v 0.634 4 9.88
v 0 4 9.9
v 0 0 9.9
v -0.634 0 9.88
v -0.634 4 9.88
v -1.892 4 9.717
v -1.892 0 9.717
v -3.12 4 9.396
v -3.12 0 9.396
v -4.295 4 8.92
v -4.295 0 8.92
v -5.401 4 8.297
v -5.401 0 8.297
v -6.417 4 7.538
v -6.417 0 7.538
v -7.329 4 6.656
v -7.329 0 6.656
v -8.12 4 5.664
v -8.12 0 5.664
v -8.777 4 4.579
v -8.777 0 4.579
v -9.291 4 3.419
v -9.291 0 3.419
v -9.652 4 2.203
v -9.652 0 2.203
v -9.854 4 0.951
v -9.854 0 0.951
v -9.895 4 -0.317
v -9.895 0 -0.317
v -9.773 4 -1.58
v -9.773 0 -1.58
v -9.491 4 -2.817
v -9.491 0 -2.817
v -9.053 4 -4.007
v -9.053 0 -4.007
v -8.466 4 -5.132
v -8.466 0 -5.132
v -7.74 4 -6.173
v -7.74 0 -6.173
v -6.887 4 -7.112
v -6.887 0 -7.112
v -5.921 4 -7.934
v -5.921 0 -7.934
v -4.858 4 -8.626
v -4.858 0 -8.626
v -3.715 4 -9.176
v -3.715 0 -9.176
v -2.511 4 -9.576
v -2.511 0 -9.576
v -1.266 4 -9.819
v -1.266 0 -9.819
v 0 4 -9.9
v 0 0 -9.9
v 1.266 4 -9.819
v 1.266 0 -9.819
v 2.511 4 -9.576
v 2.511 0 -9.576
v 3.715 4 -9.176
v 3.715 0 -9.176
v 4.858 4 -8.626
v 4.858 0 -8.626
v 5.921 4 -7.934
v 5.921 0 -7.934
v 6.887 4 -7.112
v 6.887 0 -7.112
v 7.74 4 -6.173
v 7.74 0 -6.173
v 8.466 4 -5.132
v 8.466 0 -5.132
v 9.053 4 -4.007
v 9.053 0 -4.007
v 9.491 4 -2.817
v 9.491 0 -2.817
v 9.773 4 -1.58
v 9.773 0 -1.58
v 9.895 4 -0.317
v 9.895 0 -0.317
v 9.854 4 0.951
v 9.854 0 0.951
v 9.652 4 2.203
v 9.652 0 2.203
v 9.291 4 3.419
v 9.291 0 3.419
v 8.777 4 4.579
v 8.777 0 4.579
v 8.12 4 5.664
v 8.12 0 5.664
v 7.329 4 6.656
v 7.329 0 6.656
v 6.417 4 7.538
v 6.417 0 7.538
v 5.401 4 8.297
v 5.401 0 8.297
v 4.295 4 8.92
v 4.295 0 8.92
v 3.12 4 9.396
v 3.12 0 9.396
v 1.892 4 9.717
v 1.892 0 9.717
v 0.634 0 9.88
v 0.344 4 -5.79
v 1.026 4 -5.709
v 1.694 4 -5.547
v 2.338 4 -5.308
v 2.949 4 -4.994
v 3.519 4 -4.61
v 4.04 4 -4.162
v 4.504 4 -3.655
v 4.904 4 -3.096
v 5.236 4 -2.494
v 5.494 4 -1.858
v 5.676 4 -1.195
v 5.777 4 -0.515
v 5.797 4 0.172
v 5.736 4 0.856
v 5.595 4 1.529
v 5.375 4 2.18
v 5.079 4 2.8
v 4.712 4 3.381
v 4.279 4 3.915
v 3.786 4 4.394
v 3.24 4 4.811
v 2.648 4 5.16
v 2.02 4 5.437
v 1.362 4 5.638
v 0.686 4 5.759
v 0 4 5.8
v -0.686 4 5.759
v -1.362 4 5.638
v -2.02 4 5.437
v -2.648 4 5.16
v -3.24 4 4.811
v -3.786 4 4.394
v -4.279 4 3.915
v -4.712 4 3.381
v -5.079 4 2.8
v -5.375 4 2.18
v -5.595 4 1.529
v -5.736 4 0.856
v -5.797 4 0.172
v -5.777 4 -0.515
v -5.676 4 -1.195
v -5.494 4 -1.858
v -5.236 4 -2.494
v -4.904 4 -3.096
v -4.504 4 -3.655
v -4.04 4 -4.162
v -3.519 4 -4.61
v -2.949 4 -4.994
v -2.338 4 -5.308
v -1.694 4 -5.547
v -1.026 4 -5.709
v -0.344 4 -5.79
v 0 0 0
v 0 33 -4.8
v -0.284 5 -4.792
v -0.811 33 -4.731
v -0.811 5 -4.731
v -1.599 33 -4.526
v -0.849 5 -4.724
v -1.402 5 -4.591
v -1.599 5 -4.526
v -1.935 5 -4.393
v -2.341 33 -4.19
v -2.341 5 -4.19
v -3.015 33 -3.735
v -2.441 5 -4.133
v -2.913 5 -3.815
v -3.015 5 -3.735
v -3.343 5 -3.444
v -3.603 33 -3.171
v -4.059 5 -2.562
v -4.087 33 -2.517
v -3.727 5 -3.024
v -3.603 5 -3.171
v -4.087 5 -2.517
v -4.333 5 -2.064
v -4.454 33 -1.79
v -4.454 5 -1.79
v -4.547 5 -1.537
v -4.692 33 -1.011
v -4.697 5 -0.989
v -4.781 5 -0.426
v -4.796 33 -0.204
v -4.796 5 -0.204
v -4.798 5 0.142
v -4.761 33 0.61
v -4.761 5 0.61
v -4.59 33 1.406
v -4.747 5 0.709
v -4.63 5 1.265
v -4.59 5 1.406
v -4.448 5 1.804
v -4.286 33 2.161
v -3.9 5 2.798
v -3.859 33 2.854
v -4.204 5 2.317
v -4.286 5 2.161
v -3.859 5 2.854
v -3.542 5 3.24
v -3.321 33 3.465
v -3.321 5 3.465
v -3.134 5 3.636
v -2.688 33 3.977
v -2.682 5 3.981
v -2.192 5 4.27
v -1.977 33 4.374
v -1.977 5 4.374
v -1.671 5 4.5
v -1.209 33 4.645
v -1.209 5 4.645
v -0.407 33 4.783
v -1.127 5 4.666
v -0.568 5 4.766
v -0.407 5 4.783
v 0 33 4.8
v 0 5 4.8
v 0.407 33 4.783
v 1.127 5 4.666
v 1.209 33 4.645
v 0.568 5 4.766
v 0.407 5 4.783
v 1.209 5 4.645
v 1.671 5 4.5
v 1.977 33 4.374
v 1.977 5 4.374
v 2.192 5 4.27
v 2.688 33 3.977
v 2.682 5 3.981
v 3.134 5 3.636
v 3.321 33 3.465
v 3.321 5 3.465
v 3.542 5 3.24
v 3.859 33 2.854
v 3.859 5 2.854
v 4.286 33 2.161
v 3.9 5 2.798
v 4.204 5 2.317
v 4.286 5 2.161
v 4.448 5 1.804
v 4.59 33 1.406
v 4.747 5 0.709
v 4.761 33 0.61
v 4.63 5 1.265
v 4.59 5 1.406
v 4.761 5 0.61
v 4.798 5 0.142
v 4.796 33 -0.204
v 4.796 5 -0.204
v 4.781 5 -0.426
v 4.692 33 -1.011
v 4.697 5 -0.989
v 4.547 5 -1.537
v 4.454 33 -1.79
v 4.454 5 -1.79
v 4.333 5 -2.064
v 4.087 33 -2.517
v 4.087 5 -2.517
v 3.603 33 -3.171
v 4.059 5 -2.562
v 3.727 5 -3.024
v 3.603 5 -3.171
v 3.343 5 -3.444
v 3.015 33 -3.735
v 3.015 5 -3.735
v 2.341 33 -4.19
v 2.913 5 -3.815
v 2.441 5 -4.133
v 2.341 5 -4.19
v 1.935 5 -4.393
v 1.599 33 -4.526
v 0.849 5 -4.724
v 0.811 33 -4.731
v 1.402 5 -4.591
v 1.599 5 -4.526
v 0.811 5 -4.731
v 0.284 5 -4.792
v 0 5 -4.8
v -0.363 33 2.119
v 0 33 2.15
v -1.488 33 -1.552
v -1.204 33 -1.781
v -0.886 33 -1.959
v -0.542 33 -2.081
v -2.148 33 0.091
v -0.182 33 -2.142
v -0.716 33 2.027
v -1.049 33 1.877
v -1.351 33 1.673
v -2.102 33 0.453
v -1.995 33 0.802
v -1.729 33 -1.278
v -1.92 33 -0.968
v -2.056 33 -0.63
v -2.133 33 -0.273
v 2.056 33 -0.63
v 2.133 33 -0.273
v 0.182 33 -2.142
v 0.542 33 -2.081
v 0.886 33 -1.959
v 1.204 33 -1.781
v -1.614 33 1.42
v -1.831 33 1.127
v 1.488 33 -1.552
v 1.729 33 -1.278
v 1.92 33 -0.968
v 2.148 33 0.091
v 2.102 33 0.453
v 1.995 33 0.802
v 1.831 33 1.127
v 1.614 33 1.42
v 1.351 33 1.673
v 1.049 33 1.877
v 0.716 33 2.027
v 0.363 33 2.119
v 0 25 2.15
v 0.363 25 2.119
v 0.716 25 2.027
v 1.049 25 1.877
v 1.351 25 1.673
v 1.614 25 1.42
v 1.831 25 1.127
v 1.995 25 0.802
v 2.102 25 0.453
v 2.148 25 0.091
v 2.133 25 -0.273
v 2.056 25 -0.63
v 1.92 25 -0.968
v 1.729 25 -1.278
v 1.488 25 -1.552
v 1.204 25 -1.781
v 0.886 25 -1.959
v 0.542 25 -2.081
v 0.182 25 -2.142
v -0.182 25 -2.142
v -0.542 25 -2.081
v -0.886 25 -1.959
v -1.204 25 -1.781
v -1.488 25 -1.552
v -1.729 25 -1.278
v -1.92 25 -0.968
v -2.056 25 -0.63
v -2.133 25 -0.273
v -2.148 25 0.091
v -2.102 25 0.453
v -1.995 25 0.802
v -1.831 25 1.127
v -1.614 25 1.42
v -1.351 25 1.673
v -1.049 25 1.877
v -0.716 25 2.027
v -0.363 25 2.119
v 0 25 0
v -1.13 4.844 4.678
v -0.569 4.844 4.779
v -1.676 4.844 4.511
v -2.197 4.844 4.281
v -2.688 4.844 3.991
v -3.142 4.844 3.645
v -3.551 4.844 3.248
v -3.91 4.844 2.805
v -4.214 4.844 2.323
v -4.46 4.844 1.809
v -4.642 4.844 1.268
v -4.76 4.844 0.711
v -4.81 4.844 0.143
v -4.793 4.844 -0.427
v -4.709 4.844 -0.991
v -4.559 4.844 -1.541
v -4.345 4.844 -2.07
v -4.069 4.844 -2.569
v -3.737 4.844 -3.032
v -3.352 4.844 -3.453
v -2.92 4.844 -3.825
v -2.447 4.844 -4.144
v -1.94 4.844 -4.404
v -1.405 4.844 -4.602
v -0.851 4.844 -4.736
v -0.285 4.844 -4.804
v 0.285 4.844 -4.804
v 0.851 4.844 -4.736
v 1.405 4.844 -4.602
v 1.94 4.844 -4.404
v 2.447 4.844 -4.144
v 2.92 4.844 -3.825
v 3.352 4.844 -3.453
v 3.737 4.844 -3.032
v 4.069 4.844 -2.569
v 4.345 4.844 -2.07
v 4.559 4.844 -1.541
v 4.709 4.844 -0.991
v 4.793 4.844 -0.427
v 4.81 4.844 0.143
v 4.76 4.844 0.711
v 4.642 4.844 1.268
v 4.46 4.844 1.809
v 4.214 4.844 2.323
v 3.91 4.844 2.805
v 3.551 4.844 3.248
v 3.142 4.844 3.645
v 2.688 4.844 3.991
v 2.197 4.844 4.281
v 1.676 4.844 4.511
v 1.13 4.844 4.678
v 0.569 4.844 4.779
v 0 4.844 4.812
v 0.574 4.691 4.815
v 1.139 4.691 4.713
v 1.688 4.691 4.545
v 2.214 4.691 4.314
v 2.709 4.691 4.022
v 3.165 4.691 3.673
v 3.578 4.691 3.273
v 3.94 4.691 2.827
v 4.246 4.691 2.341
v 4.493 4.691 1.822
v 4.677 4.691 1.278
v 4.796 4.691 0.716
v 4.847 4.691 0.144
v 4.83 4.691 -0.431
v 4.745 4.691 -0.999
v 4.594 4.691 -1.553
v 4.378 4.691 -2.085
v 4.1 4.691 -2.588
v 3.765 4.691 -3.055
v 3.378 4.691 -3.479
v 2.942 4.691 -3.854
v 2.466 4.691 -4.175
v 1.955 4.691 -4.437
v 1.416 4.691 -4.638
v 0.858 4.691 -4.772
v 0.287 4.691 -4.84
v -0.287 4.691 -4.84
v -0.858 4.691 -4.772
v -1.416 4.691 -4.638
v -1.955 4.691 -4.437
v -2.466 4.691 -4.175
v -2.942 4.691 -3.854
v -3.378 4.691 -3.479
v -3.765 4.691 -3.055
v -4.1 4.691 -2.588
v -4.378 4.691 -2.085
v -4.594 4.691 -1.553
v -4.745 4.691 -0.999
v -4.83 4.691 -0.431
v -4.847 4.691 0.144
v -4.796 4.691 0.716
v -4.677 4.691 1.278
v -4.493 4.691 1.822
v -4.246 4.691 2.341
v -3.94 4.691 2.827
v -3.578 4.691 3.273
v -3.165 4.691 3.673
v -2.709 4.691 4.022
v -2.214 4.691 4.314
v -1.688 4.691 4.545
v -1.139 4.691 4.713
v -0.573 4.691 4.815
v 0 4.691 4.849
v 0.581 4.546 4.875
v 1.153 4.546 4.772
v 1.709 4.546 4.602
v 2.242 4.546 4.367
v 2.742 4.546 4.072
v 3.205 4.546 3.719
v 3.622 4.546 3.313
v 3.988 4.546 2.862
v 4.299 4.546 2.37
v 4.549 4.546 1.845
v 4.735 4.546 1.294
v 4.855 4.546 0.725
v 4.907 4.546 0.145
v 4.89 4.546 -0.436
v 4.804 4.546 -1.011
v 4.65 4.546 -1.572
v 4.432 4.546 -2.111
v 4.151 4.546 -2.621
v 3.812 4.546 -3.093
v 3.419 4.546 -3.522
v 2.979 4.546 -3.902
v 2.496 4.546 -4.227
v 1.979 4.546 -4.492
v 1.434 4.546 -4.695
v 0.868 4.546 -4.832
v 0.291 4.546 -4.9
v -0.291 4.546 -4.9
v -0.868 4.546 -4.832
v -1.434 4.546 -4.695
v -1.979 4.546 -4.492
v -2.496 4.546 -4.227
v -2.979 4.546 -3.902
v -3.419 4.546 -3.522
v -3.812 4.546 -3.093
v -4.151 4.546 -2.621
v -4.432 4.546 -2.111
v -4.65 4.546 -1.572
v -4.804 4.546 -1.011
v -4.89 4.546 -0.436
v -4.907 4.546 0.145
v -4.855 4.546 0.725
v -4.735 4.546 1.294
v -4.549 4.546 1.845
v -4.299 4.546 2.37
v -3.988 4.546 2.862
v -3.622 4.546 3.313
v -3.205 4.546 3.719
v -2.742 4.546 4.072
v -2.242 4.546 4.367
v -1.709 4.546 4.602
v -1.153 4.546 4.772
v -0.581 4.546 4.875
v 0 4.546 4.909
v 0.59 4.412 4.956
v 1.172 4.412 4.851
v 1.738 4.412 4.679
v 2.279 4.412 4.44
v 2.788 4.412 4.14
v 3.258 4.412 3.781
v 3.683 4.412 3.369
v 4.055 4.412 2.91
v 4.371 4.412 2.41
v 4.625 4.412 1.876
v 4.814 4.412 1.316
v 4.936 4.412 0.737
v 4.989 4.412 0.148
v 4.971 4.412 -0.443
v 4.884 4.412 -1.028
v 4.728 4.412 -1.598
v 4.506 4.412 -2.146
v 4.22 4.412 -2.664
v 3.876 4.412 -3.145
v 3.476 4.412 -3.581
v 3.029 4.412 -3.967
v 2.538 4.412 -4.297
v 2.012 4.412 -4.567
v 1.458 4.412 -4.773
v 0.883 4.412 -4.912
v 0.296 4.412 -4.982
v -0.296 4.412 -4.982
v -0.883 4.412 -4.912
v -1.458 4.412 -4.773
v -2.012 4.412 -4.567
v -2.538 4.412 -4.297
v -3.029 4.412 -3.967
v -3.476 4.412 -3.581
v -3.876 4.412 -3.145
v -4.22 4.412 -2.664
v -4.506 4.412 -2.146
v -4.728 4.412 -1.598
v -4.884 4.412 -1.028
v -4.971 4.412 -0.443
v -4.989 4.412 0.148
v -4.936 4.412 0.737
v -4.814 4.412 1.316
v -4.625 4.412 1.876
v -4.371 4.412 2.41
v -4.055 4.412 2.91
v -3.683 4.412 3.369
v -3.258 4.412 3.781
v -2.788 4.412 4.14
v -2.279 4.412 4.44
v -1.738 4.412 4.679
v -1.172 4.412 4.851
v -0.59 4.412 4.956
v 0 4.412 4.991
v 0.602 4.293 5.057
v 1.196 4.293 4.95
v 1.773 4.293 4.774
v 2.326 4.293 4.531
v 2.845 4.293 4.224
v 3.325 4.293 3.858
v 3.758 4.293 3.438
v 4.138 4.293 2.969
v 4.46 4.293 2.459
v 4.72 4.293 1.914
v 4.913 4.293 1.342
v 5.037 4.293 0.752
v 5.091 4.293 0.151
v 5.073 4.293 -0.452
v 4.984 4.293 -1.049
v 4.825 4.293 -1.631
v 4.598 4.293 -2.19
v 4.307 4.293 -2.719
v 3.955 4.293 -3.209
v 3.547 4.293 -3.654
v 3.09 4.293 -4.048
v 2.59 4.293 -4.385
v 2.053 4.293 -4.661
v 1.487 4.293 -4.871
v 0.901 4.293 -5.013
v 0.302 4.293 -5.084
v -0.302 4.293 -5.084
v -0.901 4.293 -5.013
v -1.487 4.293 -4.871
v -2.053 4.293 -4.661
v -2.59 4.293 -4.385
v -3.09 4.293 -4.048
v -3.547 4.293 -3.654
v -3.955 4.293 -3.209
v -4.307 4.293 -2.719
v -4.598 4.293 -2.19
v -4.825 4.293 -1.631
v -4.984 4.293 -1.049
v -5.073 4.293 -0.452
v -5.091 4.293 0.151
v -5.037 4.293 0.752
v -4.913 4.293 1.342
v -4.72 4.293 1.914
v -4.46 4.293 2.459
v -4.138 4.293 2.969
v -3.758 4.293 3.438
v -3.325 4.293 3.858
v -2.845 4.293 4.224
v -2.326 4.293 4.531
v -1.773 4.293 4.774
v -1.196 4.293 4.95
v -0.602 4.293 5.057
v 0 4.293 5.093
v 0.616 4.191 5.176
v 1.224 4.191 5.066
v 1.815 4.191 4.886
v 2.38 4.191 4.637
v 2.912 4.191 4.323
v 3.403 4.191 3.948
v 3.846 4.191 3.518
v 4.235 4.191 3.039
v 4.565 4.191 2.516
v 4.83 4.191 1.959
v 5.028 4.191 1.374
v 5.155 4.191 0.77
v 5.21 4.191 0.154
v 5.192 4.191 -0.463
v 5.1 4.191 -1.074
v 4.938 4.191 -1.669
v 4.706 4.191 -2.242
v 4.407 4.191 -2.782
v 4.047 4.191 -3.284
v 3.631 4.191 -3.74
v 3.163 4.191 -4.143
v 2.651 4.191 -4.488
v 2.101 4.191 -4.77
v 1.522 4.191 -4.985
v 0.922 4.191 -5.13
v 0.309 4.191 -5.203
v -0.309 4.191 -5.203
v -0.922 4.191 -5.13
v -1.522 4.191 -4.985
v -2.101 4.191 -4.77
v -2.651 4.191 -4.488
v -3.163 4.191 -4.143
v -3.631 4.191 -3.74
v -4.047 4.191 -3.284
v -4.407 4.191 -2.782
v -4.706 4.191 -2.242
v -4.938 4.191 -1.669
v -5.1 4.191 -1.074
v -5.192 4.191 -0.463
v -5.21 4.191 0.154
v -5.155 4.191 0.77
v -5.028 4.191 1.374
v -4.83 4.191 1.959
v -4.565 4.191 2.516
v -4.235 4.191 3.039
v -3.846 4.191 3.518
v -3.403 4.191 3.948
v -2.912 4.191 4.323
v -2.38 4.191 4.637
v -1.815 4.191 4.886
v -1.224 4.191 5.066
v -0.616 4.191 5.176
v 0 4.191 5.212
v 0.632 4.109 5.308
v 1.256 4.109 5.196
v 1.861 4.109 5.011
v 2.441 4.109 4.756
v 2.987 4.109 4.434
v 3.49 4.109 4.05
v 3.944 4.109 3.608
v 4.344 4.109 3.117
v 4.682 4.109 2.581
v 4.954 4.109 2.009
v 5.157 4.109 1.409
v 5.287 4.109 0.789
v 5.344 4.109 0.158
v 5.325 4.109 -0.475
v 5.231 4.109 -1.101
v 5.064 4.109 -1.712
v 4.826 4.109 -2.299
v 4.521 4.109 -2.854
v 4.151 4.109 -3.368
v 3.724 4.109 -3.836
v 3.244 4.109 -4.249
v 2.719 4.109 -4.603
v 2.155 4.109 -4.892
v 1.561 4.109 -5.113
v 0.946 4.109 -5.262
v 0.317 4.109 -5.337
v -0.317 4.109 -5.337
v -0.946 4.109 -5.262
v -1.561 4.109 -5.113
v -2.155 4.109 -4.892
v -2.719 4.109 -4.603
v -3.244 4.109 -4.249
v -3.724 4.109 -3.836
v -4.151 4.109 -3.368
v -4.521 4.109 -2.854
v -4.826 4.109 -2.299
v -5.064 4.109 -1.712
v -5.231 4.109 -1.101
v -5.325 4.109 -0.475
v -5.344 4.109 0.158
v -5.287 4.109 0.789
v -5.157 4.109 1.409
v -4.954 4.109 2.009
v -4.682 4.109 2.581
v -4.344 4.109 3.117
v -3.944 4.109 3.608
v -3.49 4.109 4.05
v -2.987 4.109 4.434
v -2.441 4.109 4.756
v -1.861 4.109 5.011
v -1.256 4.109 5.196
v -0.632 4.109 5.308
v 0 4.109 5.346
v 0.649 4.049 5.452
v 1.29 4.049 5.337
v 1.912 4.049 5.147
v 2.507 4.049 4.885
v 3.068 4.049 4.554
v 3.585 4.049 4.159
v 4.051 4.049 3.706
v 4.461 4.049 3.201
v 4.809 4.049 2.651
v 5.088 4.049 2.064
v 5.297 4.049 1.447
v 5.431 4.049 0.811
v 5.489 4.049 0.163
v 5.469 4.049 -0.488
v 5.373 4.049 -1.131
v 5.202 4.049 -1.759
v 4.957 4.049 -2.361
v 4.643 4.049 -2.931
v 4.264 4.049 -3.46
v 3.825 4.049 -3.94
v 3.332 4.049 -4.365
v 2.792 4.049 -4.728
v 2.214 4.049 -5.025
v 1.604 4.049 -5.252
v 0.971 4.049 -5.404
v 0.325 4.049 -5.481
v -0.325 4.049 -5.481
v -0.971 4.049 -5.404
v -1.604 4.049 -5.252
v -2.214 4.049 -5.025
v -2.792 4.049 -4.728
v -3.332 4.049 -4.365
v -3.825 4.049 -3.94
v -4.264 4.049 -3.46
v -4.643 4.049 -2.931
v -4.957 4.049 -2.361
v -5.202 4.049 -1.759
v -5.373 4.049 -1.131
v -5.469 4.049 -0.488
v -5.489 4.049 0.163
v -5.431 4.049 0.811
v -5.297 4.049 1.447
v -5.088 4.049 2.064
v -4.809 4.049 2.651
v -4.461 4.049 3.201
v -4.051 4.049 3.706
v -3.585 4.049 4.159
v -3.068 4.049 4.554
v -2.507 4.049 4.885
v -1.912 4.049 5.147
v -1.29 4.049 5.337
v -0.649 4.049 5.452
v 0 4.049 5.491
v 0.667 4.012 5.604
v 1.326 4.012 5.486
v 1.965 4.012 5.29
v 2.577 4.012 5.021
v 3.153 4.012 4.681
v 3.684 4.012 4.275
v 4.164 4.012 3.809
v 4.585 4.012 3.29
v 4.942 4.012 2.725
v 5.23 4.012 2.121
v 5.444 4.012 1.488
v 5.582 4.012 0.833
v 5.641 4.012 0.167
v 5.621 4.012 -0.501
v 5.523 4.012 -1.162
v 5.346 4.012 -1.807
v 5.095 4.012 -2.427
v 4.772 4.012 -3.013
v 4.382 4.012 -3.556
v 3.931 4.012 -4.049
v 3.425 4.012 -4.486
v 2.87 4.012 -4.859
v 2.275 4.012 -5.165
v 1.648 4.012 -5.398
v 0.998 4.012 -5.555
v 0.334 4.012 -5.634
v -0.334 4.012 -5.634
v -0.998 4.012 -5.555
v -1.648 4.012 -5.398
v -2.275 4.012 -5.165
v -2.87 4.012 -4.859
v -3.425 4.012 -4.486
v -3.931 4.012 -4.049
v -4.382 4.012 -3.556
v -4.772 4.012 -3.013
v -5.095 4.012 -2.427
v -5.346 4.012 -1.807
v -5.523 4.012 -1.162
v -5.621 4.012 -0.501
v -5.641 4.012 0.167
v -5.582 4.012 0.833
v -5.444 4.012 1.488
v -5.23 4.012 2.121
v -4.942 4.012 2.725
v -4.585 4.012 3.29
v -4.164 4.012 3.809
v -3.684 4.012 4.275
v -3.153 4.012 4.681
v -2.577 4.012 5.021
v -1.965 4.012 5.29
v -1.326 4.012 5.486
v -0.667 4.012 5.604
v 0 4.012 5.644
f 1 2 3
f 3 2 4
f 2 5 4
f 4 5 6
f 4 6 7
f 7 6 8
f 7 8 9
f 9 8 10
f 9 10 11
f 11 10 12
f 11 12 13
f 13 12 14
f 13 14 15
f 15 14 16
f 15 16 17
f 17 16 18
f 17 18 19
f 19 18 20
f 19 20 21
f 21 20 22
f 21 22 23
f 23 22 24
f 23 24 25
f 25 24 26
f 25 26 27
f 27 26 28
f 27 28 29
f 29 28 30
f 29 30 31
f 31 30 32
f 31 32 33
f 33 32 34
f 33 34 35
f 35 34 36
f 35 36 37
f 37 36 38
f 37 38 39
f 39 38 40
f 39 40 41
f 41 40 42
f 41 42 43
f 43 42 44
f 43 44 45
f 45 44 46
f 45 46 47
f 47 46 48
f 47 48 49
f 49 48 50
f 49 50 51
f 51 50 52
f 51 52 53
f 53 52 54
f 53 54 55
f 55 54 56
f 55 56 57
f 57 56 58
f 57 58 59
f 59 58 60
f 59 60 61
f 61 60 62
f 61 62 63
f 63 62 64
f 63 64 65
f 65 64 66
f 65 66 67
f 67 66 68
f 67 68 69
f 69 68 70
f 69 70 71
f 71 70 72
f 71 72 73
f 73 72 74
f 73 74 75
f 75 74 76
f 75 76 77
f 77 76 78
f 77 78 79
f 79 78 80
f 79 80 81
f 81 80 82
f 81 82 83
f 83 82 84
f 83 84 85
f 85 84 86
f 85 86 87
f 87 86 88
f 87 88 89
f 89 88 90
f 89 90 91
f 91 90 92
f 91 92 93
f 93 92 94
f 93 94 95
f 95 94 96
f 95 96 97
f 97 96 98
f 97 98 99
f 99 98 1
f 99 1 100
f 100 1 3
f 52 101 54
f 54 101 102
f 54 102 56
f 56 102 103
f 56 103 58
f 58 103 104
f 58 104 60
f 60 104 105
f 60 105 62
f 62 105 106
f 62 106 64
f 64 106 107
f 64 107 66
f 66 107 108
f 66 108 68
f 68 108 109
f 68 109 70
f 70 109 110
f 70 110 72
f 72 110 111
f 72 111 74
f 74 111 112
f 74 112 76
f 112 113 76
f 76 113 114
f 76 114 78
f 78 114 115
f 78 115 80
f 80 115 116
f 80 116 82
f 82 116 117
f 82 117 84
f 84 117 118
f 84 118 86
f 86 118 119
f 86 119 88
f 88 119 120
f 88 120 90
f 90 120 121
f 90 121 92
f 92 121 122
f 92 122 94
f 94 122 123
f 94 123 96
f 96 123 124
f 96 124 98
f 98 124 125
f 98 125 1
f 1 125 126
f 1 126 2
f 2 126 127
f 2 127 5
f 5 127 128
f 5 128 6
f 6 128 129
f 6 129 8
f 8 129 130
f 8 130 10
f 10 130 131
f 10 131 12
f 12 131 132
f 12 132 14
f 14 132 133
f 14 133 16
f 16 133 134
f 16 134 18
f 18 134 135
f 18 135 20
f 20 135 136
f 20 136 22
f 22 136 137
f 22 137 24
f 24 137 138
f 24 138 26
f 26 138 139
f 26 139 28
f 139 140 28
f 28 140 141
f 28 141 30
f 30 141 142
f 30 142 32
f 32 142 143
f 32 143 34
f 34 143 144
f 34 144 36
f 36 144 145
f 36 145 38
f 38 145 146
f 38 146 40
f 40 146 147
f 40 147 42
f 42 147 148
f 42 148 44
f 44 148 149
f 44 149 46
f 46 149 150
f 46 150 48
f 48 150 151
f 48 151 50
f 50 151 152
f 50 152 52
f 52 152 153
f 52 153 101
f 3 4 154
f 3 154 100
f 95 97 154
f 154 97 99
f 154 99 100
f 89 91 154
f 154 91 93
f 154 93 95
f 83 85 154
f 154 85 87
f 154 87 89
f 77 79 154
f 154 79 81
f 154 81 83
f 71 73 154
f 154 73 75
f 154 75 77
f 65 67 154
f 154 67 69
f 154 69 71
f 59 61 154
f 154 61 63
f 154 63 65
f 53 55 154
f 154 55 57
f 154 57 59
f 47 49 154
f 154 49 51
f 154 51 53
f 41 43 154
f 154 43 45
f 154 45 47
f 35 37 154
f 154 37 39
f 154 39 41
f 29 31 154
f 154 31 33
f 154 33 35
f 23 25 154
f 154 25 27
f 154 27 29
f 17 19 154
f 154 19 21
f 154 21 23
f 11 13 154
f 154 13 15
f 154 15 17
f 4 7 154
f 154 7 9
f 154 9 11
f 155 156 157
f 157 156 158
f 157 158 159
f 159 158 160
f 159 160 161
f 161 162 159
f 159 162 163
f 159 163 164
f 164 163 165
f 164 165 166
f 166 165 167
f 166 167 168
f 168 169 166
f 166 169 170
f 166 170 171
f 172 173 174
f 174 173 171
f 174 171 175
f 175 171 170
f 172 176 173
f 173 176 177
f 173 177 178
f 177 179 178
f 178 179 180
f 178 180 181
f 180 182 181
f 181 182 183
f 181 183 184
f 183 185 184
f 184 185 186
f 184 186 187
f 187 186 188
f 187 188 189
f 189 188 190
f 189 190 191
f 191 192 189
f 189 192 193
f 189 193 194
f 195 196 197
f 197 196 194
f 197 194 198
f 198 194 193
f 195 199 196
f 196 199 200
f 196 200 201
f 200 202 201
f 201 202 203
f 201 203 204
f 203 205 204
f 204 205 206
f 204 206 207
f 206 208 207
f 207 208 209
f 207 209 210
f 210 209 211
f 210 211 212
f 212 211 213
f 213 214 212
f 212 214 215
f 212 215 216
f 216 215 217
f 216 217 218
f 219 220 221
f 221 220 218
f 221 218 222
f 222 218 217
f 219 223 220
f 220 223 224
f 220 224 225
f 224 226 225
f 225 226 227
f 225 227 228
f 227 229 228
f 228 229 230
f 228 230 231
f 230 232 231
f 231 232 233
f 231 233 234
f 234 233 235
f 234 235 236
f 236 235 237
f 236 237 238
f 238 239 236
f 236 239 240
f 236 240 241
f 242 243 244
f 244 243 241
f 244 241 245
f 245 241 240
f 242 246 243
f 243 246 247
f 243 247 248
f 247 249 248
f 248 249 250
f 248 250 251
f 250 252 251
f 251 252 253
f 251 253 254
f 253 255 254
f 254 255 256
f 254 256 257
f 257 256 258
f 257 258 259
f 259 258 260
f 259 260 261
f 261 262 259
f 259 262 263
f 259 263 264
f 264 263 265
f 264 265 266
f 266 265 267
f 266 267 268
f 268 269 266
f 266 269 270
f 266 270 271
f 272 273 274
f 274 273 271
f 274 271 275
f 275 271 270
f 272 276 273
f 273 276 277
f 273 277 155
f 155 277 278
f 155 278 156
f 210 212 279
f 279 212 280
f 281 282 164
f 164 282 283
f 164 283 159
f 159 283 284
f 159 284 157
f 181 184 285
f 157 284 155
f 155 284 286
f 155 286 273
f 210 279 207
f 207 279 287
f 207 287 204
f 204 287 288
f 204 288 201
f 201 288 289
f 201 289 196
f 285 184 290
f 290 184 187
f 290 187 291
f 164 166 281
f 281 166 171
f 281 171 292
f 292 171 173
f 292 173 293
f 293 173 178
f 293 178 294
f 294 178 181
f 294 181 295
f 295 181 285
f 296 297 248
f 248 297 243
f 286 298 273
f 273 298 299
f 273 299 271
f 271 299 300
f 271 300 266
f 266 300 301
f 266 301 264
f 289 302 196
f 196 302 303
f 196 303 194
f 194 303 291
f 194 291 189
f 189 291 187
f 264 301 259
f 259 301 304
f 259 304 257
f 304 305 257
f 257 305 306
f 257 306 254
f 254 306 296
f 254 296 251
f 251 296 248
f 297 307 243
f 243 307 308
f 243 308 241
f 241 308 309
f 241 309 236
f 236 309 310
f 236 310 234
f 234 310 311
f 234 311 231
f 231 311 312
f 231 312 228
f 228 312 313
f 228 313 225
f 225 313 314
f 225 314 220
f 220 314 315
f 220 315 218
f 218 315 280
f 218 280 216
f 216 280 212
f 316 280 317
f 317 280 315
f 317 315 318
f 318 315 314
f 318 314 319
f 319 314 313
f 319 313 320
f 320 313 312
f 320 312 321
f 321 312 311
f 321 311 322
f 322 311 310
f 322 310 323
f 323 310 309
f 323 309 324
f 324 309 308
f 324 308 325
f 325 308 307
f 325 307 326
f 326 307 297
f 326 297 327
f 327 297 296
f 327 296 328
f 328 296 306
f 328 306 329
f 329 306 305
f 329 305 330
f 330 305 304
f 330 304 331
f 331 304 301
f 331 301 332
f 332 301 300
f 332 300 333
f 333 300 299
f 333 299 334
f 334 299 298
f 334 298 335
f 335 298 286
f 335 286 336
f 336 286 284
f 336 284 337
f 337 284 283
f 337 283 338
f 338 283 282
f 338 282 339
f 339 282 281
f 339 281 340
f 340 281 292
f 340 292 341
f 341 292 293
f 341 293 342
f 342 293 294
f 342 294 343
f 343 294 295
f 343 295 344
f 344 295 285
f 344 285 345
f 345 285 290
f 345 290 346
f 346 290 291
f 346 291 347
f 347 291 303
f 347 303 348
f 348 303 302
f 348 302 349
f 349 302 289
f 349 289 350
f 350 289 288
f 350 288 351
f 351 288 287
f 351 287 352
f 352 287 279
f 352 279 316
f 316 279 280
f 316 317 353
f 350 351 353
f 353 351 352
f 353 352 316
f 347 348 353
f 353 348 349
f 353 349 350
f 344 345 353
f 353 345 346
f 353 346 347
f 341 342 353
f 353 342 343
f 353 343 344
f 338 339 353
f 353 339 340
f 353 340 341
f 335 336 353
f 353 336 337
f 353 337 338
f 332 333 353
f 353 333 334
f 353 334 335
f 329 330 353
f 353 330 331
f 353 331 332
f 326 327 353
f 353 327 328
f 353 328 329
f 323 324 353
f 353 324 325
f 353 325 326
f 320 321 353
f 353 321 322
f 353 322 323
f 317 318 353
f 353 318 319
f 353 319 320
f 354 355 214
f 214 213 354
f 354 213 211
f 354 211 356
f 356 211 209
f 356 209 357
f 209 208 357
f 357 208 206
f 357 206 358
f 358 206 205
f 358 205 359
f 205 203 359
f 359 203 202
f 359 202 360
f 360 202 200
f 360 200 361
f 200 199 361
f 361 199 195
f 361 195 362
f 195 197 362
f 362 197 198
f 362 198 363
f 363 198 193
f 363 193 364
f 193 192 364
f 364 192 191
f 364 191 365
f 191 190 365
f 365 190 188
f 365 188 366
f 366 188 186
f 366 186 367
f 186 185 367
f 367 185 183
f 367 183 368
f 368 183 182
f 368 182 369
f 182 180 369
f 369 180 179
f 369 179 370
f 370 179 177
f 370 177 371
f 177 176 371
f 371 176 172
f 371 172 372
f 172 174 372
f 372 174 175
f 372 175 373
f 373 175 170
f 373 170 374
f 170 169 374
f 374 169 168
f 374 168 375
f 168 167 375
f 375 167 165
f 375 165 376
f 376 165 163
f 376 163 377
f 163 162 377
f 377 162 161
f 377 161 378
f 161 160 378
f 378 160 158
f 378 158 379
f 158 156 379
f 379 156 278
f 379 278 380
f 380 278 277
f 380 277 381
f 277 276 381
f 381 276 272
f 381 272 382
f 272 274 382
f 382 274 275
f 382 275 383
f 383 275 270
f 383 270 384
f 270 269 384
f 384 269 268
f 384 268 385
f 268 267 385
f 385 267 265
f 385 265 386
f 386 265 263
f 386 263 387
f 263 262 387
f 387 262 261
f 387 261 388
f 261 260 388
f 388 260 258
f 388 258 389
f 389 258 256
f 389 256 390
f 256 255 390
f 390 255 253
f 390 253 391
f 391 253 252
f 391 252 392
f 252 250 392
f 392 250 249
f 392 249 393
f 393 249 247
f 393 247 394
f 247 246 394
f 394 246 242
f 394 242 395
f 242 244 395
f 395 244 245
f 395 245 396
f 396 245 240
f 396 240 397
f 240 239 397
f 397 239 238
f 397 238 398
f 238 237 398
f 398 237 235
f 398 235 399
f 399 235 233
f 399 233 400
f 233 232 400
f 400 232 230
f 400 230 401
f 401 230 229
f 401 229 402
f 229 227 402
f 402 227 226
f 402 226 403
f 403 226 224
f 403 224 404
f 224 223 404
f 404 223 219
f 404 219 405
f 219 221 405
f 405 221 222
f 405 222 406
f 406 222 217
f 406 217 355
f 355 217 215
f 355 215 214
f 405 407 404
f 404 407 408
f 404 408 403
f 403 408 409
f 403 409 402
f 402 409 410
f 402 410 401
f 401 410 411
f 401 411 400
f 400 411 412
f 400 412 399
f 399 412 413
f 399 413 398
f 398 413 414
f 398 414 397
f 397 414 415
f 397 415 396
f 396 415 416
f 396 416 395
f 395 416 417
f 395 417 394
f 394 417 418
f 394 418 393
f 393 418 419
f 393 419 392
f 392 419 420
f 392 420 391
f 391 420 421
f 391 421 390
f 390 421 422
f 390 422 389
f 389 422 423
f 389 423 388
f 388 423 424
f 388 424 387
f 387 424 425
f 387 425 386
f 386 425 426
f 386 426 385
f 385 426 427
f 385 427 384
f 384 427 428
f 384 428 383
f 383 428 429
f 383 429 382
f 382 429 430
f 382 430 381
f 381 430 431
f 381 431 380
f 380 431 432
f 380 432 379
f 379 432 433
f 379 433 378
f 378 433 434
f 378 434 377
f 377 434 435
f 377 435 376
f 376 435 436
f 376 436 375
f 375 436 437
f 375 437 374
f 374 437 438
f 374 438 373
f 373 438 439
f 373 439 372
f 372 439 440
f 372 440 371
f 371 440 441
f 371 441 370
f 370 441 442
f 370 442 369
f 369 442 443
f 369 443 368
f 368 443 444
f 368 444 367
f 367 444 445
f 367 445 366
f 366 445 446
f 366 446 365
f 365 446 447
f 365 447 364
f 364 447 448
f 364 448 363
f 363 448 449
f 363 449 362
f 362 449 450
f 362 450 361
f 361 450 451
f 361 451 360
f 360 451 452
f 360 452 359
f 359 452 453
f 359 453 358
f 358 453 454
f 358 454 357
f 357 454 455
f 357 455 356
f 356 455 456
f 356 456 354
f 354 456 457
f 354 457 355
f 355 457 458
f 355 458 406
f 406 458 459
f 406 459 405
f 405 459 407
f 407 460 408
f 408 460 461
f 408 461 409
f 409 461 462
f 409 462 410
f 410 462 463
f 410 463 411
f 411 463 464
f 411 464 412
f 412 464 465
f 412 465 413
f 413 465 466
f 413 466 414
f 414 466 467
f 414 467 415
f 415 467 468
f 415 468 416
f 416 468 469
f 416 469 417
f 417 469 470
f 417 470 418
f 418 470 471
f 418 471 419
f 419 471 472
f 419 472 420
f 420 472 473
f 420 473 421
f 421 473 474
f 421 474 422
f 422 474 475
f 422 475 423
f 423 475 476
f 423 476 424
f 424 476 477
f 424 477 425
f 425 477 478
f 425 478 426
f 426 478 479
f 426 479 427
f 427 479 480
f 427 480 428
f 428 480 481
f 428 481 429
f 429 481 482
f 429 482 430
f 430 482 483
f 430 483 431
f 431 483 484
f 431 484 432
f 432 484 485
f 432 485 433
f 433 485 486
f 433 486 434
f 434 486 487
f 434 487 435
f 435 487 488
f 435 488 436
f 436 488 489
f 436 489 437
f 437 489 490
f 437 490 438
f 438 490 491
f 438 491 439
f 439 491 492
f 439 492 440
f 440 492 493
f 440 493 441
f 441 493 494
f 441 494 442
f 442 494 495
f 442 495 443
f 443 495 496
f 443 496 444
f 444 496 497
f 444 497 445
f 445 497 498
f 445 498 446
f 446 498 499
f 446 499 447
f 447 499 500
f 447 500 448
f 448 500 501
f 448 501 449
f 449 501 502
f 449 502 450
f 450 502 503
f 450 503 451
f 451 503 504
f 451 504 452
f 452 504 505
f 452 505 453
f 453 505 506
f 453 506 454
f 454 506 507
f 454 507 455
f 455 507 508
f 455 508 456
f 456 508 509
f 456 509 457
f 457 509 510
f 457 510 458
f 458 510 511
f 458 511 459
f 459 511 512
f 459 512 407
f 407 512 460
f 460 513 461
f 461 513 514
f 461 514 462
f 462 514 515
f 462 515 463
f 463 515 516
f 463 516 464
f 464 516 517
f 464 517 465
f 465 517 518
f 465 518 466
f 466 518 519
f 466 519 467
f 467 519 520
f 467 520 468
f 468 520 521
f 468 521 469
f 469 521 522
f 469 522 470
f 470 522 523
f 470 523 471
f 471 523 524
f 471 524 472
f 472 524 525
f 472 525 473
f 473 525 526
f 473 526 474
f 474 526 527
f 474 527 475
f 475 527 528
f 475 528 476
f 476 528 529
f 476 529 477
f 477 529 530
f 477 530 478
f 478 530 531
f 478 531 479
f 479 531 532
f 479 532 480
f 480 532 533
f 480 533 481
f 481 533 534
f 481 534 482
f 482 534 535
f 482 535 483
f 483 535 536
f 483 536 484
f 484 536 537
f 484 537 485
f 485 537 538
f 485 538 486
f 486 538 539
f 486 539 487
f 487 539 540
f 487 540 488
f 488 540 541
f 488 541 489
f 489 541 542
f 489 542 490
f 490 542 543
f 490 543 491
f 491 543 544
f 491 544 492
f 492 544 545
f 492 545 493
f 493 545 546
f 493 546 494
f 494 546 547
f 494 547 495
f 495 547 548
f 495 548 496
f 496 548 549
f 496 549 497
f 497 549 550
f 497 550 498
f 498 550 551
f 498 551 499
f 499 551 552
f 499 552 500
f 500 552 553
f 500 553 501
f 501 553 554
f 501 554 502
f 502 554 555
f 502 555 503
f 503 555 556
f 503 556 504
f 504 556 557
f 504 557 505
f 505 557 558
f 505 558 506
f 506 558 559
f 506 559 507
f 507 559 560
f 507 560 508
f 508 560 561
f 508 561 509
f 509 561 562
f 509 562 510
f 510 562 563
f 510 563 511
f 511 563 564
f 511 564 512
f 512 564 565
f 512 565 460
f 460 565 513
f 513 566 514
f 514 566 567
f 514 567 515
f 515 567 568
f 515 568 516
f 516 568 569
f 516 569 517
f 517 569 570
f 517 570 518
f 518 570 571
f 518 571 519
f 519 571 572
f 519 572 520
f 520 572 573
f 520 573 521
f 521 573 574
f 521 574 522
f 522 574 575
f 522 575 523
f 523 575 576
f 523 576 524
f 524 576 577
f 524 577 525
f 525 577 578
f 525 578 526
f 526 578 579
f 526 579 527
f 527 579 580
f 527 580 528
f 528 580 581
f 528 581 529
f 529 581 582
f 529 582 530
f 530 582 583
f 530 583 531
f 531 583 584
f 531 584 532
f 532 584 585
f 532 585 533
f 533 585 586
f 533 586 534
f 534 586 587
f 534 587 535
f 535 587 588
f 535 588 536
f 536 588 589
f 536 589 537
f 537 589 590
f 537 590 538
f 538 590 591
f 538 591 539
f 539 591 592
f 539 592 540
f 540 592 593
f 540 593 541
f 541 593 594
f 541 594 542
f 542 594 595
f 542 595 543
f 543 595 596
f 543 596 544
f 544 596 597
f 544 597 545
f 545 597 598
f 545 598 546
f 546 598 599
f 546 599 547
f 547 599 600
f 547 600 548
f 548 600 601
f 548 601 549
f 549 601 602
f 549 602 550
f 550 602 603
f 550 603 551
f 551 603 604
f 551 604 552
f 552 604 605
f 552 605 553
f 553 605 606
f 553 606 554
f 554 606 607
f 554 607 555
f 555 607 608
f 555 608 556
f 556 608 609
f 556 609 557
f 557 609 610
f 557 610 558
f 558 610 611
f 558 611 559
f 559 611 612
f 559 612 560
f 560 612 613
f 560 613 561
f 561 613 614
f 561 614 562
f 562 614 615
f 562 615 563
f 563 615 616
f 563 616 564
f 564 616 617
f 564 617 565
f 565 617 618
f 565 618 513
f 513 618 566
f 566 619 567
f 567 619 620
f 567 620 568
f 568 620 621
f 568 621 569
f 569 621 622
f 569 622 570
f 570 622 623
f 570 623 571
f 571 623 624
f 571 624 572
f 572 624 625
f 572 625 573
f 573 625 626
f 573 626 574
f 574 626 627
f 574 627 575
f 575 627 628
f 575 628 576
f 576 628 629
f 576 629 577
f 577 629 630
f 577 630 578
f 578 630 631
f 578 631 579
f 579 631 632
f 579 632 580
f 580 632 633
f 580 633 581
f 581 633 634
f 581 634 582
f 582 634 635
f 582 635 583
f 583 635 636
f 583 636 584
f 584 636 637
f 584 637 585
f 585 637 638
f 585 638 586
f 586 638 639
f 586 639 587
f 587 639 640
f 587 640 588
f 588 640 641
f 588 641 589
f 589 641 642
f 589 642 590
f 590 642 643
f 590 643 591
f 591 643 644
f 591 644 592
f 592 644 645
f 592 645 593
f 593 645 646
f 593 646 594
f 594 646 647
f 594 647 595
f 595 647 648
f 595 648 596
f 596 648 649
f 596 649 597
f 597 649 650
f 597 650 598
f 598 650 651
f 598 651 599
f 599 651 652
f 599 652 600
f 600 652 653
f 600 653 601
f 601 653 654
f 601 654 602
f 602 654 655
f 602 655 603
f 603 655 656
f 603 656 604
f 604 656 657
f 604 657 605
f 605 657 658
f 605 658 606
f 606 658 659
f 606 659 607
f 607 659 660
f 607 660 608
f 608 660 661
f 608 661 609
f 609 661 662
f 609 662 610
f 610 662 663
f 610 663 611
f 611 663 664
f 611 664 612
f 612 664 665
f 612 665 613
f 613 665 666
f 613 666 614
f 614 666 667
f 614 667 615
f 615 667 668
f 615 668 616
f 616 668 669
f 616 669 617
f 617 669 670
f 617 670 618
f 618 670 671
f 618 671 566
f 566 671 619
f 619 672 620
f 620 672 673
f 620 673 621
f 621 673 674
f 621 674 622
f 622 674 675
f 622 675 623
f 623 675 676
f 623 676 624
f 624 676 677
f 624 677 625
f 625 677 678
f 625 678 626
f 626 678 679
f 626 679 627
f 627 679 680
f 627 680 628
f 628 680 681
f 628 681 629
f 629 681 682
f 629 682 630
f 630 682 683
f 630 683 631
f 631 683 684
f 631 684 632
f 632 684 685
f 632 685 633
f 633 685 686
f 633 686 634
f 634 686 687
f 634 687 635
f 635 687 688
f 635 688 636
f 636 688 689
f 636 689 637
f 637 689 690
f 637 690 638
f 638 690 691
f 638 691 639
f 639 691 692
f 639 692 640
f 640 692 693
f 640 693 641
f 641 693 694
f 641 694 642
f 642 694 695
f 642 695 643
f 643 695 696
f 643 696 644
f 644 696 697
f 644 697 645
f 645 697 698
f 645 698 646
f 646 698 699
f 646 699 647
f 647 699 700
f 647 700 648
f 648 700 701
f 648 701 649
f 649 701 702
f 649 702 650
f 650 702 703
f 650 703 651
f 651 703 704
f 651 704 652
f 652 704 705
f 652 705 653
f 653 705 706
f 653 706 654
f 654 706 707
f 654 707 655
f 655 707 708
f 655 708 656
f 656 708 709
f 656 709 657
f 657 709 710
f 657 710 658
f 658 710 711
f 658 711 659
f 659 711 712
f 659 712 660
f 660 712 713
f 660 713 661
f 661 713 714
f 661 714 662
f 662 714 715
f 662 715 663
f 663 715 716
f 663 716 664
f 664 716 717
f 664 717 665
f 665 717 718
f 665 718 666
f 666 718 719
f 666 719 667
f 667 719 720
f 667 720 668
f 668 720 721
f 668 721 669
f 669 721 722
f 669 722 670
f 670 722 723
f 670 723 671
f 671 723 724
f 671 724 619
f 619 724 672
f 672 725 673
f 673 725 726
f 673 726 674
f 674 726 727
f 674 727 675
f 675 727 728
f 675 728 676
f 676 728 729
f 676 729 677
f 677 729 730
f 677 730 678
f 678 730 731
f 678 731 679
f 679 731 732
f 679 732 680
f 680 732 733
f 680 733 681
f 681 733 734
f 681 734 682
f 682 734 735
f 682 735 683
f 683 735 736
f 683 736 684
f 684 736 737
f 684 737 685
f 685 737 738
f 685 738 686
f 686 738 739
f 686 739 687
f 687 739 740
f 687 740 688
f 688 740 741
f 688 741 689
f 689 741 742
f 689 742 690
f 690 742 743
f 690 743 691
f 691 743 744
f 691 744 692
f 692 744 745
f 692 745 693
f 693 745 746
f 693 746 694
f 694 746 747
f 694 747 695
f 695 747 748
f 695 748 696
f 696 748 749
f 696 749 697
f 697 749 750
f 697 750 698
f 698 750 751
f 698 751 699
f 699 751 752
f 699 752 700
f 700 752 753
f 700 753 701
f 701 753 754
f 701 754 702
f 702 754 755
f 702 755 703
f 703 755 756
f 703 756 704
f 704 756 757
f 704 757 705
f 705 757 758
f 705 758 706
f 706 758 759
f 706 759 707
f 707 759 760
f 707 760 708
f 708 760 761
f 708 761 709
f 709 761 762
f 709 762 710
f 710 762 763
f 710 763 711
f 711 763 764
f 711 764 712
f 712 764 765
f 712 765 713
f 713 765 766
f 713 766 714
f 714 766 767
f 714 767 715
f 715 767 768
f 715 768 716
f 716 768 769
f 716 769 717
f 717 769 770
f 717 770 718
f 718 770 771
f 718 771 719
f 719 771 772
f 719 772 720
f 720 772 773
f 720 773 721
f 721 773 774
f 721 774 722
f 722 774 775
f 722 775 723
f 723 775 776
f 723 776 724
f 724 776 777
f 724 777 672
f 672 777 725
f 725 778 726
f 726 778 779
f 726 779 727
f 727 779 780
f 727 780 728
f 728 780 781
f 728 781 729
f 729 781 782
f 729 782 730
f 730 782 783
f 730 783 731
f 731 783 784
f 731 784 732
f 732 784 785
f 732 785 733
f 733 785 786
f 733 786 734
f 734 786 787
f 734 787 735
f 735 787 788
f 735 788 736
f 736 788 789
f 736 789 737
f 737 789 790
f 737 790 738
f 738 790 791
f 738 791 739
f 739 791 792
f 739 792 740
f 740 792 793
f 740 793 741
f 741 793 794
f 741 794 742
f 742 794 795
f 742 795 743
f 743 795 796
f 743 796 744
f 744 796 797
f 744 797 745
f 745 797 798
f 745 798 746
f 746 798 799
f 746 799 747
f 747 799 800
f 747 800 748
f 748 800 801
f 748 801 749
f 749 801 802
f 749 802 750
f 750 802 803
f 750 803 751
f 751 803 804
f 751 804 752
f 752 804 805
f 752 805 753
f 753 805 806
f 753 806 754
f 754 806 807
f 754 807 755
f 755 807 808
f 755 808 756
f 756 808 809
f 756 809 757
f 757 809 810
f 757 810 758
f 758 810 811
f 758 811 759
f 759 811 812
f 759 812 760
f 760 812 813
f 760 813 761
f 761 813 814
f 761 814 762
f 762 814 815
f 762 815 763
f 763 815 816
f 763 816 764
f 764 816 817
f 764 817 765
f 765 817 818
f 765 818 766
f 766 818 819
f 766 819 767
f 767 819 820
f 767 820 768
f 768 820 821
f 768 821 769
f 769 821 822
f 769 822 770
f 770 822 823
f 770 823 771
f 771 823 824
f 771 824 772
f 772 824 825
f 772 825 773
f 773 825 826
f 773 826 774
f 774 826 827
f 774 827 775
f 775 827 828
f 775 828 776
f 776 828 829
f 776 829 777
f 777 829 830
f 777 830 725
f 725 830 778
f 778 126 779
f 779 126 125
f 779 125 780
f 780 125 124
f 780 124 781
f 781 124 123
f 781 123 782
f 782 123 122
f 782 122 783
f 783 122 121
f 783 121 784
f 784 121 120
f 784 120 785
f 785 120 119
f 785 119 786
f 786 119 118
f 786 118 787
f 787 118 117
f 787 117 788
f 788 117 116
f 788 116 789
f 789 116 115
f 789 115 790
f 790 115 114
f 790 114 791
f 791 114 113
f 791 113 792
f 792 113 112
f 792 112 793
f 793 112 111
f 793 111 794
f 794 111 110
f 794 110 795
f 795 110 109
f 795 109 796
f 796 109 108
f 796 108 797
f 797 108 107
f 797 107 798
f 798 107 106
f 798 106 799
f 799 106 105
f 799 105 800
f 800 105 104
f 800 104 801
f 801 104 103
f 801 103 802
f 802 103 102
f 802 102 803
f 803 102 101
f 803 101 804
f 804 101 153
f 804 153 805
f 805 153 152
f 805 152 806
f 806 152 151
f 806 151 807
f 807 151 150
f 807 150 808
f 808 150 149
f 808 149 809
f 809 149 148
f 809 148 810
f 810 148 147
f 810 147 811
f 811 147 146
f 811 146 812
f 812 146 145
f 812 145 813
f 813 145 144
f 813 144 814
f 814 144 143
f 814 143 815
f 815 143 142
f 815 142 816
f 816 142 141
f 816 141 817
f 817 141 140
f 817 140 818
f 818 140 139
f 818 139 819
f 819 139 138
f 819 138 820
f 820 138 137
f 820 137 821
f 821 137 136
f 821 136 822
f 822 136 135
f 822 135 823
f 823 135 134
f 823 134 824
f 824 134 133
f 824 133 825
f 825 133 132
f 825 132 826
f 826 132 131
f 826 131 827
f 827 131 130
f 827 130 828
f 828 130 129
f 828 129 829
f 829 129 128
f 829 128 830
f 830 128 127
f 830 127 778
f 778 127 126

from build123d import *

# Parameters (mm, degrees)
SKETCH1_R           = 9.9
SKETCH1_R_2         = 4.8
SKETCH1_R_3         = 2.15
BOSS_EXTRUDE1_DEPTH = 4
BOSS_EXTRUDE2_START = 4
SKETCH1_3_R         = 4.8
SKETCH1_3_R_2       = 2.15
BOSS_EXTRUDE2_DEPTH = 29
CUT_EXTRUDE1_START  = 33
SKETCH1_4_R         = 2.15
CUT_EXTRUDE1_DEPTH  = 8
FILLET1_R           = 1


with BuildPart() as part:
    # Sketch1 → Boss-Extrude1 (new body)
    with BuildSketch(Plane(origin=(0, 0, 0), x_dir=(1, 0, 0), z_dir=(0, 1, 0))):
        with Locations(Location((0, 0, 0), (0, 0, 270))):
            Circle(SKETCH1_R)
        Circle(SKETCH1_R_2, mode=Mode.SUBTRACT)
        Circle(SKETCH1_R_2)
        Circle(SKETCH1_R_3, mode=Mode.SUBTRACT)
        Circle(SKETCH1_R_3)
    extrude(amount=BOSS_EXTRUDE1_DEPTH)

    # Sketch1<3> → Boss-Extrude2 (add)
    with BuildSketch(Plane(origin=(0, 0, 0), x_dir=(1, 0, 0), z_dir=(0, 1, 0)).offset(BOSS_EXTRUDE2_START)):
        with Locations(Location((0, 0, 0), (0, 0, 90))):
            Circle(SKETCH1_3_R)
        Circle(SKETCH1_3_R_2, mode=Mode.SUBTRACT)
        Circle(SKETCH1_3_R_2)
    extrude(amount=BOSS_EXTRUDE2_DEPTH)

    # Sketch1<4> → Cut-Extrude1 (cut)
    with BuildSketch(Plane(origin=(0, 0, 0), x_dir=(1, 0, 0), z_dir=(0, 1, 0)).offset(CUT_EXTRUDE1_START)):
        with Locations(Location((0, 0, 0), (0, 0, 270))):
            Circle(SKETCH1_4_R)
    extrude(amount=-CUT_EXTRUDE1_DEPTH, mode=Mode.SUBTRACT)

    # Fillet1
    fillet1_edges = [part.edges().sort_by_distance(p)[0] for p in [
        (0, 4, 4.8),
    ]]
    fillet(fillet1_edges, radius=FILLET1_R)


solid = part.part
